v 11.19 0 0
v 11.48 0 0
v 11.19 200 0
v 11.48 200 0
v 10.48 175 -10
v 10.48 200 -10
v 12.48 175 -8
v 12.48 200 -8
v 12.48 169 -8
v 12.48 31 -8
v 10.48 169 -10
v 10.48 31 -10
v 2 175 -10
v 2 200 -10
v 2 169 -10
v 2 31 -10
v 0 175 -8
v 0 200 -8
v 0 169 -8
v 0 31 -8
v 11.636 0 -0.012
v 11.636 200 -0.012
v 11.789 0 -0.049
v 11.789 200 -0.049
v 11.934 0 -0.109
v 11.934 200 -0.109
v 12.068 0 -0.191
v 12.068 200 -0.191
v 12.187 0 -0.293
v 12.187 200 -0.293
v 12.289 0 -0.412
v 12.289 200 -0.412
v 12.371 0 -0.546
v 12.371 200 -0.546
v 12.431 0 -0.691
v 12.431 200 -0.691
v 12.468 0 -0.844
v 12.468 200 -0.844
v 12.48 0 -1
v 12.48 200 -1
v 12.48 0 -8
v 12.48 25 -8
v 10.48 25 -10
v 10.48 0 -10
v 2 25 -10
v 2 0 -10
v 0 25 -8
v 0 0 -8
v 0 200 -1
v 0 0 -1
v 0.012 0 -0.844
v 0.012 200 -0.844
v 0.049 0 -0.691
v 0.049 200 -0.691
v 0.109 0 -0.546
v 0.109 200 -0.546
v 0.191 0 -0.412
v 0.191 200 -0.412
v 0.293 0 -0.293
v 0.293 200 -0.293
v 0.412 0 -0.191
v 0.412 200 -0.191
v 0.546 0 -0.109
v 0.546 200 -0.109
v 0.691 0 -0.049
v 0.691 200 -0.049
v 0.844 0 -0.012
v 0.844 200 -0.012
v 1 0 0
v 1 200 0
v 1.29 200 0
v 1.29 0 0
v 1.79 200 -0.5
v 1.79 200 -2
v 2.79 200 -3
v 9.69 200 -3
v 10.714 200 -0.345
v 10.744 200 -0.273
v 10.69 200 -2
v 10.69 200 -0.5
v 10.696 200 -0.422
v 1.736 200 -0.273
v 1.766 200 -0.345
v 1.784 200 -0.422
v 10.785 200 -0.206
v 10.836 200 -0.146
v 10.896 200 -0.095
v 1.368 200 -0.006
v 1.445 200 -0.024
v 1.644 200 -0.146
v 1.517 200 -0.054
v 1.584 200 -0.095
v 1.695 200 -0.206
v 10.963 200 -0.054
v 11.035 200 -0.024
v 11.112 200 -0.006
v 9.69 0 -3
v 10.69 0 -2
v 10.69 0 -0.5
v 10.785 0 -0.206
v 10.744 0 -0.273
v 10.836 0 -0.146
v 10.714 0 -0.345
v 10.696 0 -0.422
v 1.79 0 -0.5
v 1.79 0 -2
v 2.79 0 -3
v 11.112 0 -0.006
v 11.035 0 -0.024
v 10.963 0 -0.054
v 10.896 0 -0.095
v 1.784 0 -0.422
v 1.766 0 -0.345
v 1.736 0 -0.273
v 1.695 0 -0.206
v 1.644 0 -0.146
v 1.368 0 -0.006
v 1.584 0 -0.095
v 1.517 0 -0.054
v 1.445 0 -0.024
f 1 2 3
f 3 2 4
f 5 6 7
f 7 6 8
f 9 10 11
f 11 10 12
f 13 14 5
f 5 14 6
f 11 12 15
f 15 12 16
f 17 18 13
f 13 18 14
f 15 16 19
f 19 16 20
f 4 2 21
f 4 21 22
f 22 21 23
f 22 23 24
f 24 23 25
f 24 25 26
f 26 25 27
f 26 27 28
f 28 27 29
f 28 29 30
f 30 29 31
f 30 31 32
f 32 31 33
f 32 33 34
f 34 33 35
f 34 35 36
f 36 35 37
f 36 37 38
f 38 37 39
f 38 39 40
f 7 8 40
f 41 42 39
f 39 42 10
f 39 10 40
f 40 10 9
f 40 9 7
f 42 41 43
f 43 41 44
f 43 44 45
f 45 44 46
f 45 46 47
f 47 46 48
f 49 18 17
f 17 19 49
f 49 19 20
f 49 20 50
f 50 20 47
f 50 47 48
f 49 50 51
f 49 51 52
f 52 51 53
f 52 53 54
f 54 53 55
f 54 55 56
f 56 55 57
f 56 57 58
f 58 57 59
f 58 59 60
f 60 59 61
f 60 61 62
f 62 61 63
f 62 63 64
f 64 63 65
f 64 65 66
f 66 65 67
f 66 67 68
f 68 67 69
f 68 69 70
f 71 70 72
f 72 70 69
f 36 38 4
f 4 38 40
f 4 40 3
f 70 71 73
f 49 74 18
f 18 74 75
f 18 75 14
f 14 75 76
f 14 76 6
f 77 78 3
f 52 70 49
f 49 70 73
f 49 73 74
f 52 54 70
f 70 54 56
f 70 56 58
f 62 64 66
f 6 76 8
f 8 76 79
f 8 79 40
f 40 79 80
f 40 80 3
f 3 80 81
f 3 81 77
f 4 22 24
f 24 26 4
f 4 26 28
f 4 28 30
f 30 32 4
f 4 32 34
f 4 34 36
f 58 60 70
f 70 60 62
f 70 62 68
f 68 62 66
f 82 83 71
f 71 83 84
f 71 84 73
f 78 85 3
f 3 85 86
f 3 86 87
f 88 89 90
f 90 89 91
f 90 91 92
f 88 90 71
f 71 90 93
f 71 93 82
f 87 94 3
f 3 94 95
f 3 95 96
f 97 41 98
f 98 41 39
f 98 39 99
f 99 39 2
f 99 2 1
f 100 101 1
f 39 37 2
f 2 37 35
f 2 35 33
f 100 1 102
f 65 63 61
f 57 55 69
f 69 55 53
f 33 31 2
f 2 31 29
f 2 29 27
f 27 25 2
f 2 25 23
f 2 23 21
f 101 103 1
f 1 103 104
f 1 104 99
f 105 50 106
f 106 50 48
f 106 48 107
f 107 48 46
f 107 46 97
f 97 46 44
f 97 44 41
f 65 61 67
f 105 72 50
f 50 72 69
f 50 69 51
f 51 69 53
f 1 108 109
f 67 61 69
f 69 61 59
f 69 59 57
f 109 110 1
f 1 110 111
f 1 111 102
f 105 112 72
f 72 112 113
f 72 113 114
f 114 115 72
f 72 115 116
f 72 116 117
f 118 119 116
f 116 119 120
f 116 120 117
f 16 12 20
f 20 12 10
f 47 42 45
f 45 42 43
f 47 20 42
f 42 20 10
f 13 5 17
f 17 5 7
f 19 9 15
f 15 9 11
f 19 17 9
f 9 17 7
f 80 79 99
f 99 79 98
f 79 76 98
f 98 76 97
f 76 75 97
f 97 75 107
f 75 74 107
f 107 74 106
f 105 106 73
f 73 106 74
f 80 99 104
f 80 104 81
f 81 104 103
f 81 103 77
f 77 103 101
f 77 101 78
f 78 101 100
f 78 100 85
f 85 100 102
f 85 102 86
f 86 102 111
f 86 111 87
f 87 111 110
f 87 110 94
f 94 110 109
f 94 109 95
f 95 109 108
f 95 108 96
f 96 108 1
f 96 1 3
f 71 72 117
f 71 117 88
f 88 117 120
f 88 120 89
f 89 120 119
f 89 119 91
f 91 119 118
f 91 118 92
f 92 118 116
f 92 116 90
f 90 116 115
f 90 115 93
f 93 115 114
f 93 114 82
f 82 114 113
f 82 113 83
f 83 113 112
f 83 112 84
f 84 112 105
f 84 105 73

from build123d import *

# Parameters (mm, degrees)
BOSS_EXTRUDE1_DEPTH = 200
SKETCH2_W           = 12.48
SKETCH2_H           = 6
CUT_EXTRUDE1_DEPTH  = 2
CUT_EXTRUDE2_DEPTH  = 201
FILLET1_R           = 0.5


with BuildPart() as part:
    # Sketch1 → Boss-Extrude1 (new body)
    with BuildSketch(Plane(origin=(0, 0, 0), x_dir=(1, 0, 0), z_dir=(0, 1, 0))):
        with BuildLine():
            Line((0, 8), (2, 10))
            Line((2, 10), (10.48, 10))
            Line((10.48, 10), (12.48, 8))
            Line((12.48, 8), (12.48, 1))
            ThreePointArc((12.48, 1), (12.187106781, 0.292893219), (11.48, 0))
            Line((11.48, 0), (1, 0))
            ThreePointArc((1, 0), (0.292893219, 0.292893219), (0, 1))
            Line((0, 1), (0, 8))
        make_face()
    extrude(amount=BOSS_EXTRUDE1_DEPTH)

    # Sketch2 → Cut-Extrude1 (cut)
    with BuildSketch(Plane(origin=(0, 0, -10), x_dir=(-1, 0, 0), z_dir=(0, 0, -1))):
        with Locations((-6.24, 172)):
            Rectangle(SKETCH2_W, SKETCH2_H)
        with Locations((-6.24, 28)):
            Rectangle(SKETCH2_W, SKETCH2_H)
    extrude(amount=-CUT_EXTRUDE1_DEPTH, mode=Mode.SUBTRACT)

    # Sketch3 → Cut-Extrude2 (cut, through all)
    with BuildSketch(Plane.XZ):
        Polygon((1.79, 0), (1.79, -2), (2.79, -3), (9.69, -3), (10.69, -2), (10.69, 0), align=None)
    extrude(amount=-CUT_EXTRUDE2_DEPTH, mode=Mode.SUBTRACT)

    # Fillet1
    fillet1_edges = [part.edges().sort_by_distance(p)[0] for p in [
        (1.79, 100, 0),
        (10.69, 100, 0),
    ]]
    fillet(fillet1_edges, radius=FILLET1_R)


solid = part.part
